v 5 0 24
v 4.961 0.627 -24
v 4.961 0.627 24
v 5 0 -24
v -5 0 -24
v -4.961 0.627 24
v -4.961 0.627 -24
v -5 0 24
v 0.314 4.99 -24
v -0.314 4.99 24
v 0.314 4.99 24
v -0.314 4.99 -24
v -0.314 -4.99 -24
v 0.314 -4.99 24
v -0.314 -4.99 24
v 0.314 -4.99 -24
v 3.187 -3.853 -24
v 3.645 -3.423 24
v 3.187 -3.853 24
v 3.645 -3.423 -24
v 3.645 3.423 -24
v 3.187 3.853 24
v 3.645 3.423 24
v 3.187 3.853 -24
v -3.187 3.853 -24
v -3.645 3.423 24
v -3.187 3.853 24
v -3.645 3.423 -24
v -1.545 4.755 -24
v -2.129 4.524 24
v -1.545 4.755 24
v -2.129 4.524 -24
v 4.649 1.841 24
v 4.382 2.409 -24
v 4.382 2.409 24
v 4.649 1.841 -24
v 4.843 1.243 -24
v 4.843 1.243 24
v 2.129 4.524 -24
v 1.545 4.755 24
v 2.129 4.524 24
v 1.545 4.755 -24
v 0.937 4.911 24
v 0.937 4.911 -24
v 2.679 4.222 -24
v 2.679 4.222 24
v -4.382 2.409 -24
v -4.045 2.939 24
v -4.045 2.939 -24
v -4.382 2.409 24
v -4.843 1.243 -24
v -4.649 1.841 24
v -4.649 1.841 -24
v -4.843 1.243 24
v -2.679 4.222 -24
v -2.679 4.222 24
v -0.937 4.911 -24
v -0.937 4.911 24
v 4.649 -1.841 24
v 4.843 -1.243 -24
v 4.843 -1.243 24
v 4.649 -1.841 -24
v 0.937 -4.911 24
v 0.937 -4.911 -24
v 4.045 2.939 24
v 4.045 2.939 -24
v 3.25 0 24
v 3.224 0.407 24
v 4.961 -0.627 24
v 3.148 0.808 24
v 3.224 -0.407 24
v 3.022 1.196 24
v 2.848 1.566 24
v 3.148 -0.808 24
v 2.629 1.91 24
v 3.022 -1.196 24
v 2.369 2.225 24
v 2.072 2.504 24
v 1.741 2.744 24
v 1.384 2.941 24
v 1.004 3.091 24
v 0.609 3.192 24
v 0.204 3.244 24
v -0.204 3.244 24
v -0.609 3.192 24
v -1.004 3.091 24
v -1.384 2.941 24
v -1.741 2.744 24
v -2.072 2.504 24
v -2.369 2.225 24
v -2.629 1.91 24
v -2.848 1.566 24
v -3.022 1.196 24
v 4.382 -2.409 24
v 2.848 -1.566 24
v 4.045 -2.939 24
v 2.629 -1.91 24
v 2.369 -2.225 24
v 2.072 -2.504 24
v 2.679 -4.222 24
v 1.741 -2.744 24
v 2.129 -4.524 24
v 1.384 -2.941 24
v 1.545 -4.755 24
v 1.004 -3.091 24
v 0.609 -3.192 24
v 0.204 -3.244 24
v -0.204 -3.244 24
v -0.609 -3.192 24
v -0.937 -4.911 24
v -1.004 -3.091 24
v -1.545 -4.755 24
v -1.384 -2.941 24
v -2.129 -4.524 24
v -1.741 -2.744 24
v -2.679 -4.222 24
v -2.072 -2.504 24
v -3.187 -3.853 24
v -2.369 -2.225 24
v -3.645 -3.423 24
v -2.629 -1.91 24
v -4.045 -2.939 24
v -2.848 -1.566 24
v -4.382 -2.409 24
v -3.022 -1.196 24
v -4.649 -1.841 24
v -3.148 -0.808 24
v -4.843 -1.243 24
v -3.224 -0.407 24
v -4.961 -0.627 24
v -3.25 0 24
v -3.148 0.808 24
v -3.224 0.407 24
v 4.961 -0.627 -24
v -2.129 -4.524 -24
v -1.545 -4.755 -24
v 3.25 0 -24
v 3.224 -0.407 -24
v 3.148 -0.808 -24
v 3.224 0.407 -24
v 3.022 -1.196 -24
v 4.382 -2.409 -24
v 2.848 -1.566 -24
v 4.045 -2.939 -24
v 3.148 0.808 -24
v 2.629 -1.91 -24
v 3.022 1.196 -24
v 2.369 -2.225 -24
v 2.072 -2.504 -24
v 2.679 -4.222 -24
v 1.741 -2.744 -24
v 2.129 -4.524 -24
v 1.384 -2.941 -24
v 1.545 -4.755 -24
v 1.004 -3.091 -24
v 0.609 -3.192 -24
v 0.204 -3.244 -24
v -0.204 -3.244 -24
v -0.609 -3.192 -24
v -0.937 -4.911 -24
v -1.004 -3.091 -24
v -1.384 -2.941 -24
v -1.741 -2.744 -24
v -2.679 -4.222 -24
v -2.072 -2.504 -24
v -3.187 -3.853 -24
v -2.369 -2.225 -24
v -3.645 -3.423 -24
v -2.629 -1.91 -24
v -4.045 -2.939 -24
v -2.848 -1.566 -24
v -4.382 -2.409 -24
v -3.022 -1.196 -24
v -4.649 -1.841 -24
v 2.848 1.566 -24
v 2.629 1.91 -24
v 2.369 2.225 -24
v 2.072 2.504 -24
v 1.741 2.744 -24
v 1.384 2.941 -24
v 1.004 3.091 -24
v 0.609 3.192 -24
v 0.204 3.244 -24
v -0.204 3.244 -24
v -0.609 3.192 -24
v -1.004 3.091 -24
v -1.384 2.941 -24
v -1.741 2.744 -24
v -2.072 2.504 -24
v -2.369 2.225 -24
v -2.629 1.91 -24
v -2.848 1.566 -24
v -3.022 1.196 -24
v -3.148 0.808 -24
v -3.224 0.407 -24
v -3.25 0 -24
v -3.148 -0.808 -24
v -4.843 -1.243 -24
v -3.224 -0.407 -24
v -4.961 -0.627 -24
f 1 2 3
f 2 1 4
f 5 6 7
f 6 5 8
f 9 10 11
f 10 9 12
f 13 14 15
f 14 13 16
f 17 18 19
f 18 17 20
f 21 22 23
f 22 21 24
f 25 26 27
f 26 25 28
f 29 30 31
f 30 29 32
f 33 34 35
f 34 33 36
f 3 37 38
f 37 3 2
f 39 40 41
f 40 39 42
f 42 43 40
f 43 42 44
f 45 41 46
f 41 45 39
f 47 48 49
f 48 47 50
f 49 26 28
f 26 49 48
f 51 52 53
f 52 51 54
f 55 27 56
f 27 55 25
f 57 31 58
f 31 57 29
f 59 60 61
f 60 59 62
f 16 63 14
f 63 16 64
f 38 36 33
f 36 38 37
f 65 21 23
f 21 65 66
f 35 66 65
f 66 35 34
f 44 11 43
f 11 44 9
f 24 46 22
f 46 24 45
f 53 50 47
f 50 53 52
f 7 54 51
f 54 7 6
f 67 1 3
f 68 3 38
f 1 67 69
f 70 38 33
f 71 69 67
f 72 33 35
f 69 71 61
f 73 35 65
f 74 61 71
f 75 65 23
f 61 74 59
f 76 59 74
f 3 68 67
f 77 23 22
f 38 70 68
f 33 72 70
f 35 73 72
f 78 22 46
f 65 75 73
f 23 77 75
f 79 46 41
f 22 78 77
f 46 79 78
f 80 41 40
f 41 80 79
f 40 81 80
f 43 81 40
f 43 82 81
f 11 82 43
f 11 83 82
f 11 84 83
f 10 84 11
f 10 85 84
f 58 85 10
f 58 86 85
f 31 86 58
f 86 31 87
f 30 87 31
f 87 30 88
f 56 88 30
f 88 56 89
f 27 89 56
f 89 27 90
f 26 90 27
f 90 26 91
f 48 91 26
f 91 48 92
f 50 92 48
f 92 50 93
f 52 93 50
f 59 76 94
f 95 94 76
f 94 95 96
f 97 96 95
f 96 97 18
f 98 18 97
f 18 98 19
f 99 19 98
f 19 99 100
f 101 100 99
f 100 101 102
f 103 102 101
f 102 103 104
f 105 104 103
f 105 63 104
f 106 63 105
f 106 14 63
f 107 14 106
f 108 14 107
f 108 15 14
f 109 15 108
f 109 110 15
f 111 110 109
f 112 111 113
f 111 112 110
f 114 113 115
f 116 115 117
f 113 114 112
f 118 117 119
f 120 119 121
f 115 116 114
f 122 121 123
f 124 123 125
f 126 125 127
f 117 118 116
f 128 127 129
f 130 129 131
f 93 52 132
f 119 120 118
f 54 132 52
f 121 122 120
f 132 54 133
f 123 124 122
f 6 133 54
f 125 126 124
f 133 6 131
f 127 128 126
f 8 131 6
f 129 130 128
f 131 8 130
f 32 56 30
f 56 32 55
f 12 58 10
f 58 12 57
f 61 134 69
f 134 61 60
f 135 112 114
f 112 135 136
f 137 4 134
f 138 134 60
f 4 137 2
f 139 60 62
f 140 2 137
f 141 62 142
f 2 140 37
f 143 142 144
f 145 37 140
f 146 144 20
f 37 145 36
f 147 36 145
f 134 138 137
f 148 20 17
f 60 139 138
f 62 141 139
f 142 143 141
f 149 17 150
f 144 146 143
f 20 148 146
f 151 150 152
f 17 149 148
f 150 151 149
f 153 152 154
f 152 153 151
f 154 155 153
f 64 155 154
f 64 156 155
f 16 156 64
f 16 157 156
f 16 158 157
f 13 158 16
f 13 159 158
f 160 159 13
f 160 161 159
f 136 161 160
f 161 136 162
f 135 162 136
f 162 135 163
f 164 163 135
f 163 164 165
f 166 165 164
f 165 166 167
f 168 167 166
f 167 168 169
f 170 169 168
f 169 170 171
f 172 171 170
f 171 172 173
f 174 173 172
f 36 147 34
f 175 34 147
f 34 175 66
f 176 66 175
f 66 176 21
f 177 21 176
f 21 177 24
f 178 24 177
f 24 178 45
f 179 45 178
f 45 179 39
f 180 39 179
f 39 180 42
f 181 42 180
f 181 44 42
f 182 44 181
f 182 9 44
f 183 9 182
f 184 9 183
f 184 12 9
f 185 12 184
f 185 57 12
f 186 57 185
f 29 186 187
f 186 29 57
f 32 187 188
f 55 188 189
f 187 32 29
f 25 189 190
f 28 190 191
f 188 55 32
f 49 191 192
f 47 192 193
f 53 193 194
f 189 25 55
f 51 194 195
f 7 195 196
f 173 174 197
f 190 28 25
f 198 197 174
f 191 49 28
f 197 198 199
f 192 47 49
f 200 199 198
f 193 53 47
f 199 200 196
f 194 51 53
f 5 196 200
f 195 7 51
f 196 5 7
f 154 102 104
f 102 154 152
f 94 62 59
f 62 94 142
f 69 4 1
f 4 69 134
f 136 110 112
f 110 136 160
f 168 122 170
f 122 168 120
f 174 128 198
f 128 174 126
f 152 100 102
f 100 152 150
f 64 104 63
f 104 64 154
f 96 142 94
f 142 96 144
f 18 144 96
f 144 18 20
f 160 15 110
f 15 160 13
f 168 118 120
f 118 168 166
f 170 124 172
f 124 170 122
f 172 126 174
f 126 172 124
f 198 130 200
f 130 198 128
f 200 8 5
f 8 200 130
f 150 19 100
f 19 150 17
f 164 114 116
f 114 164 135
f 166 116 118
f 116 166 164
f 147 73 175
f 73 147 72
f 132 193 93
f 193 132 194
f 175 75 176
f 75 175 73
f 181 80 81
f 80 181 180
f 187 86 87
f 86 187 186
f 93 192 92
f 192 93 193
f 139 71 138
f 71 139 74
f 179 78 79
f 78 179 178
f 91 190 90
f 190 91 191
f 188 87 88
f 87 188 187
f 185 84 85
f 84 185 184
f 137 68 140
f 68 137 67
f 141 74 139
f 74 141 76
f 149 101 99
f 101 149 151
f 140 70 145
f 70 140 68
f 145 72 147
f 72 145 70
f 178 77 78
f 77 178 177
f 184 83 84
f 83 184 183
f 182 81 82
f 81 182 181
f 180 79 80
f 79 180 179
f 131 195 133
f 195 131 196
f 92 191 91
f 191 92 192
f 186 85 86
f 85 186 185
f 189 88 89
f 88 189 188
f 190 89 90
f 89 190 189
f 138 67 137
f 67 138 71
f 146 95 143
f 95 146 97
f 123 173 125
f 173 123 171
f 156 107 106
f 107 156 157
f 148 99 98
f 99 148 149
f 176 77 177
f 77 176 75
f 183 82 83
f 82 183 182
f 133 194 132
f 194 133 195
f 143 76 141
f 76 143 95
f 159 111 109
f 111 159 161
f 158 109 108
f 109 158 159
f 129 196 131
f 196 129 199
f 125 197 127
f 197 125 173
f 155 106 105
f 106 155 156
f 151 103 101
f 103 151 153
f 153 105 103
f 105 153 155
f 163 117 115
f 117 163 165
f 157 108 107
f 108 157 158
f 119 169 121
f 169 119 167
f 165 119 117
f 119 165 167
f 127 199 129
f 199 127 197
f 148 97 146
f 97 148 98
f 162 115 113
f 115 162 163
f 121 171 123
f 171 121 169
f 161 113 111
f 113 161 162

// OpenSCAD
$fn = 50;


difference() {
	union() {
		translate(v = [0, 0, -24.0000000000]) {
			cylinder(h = 48, r = 5.0000000000);
		}
	}
	union() {
		translate(v = [0, 0, -100.0000000000]) {
			cylinder(h = 200, r = 3.2500000000);
		}
	}
}
